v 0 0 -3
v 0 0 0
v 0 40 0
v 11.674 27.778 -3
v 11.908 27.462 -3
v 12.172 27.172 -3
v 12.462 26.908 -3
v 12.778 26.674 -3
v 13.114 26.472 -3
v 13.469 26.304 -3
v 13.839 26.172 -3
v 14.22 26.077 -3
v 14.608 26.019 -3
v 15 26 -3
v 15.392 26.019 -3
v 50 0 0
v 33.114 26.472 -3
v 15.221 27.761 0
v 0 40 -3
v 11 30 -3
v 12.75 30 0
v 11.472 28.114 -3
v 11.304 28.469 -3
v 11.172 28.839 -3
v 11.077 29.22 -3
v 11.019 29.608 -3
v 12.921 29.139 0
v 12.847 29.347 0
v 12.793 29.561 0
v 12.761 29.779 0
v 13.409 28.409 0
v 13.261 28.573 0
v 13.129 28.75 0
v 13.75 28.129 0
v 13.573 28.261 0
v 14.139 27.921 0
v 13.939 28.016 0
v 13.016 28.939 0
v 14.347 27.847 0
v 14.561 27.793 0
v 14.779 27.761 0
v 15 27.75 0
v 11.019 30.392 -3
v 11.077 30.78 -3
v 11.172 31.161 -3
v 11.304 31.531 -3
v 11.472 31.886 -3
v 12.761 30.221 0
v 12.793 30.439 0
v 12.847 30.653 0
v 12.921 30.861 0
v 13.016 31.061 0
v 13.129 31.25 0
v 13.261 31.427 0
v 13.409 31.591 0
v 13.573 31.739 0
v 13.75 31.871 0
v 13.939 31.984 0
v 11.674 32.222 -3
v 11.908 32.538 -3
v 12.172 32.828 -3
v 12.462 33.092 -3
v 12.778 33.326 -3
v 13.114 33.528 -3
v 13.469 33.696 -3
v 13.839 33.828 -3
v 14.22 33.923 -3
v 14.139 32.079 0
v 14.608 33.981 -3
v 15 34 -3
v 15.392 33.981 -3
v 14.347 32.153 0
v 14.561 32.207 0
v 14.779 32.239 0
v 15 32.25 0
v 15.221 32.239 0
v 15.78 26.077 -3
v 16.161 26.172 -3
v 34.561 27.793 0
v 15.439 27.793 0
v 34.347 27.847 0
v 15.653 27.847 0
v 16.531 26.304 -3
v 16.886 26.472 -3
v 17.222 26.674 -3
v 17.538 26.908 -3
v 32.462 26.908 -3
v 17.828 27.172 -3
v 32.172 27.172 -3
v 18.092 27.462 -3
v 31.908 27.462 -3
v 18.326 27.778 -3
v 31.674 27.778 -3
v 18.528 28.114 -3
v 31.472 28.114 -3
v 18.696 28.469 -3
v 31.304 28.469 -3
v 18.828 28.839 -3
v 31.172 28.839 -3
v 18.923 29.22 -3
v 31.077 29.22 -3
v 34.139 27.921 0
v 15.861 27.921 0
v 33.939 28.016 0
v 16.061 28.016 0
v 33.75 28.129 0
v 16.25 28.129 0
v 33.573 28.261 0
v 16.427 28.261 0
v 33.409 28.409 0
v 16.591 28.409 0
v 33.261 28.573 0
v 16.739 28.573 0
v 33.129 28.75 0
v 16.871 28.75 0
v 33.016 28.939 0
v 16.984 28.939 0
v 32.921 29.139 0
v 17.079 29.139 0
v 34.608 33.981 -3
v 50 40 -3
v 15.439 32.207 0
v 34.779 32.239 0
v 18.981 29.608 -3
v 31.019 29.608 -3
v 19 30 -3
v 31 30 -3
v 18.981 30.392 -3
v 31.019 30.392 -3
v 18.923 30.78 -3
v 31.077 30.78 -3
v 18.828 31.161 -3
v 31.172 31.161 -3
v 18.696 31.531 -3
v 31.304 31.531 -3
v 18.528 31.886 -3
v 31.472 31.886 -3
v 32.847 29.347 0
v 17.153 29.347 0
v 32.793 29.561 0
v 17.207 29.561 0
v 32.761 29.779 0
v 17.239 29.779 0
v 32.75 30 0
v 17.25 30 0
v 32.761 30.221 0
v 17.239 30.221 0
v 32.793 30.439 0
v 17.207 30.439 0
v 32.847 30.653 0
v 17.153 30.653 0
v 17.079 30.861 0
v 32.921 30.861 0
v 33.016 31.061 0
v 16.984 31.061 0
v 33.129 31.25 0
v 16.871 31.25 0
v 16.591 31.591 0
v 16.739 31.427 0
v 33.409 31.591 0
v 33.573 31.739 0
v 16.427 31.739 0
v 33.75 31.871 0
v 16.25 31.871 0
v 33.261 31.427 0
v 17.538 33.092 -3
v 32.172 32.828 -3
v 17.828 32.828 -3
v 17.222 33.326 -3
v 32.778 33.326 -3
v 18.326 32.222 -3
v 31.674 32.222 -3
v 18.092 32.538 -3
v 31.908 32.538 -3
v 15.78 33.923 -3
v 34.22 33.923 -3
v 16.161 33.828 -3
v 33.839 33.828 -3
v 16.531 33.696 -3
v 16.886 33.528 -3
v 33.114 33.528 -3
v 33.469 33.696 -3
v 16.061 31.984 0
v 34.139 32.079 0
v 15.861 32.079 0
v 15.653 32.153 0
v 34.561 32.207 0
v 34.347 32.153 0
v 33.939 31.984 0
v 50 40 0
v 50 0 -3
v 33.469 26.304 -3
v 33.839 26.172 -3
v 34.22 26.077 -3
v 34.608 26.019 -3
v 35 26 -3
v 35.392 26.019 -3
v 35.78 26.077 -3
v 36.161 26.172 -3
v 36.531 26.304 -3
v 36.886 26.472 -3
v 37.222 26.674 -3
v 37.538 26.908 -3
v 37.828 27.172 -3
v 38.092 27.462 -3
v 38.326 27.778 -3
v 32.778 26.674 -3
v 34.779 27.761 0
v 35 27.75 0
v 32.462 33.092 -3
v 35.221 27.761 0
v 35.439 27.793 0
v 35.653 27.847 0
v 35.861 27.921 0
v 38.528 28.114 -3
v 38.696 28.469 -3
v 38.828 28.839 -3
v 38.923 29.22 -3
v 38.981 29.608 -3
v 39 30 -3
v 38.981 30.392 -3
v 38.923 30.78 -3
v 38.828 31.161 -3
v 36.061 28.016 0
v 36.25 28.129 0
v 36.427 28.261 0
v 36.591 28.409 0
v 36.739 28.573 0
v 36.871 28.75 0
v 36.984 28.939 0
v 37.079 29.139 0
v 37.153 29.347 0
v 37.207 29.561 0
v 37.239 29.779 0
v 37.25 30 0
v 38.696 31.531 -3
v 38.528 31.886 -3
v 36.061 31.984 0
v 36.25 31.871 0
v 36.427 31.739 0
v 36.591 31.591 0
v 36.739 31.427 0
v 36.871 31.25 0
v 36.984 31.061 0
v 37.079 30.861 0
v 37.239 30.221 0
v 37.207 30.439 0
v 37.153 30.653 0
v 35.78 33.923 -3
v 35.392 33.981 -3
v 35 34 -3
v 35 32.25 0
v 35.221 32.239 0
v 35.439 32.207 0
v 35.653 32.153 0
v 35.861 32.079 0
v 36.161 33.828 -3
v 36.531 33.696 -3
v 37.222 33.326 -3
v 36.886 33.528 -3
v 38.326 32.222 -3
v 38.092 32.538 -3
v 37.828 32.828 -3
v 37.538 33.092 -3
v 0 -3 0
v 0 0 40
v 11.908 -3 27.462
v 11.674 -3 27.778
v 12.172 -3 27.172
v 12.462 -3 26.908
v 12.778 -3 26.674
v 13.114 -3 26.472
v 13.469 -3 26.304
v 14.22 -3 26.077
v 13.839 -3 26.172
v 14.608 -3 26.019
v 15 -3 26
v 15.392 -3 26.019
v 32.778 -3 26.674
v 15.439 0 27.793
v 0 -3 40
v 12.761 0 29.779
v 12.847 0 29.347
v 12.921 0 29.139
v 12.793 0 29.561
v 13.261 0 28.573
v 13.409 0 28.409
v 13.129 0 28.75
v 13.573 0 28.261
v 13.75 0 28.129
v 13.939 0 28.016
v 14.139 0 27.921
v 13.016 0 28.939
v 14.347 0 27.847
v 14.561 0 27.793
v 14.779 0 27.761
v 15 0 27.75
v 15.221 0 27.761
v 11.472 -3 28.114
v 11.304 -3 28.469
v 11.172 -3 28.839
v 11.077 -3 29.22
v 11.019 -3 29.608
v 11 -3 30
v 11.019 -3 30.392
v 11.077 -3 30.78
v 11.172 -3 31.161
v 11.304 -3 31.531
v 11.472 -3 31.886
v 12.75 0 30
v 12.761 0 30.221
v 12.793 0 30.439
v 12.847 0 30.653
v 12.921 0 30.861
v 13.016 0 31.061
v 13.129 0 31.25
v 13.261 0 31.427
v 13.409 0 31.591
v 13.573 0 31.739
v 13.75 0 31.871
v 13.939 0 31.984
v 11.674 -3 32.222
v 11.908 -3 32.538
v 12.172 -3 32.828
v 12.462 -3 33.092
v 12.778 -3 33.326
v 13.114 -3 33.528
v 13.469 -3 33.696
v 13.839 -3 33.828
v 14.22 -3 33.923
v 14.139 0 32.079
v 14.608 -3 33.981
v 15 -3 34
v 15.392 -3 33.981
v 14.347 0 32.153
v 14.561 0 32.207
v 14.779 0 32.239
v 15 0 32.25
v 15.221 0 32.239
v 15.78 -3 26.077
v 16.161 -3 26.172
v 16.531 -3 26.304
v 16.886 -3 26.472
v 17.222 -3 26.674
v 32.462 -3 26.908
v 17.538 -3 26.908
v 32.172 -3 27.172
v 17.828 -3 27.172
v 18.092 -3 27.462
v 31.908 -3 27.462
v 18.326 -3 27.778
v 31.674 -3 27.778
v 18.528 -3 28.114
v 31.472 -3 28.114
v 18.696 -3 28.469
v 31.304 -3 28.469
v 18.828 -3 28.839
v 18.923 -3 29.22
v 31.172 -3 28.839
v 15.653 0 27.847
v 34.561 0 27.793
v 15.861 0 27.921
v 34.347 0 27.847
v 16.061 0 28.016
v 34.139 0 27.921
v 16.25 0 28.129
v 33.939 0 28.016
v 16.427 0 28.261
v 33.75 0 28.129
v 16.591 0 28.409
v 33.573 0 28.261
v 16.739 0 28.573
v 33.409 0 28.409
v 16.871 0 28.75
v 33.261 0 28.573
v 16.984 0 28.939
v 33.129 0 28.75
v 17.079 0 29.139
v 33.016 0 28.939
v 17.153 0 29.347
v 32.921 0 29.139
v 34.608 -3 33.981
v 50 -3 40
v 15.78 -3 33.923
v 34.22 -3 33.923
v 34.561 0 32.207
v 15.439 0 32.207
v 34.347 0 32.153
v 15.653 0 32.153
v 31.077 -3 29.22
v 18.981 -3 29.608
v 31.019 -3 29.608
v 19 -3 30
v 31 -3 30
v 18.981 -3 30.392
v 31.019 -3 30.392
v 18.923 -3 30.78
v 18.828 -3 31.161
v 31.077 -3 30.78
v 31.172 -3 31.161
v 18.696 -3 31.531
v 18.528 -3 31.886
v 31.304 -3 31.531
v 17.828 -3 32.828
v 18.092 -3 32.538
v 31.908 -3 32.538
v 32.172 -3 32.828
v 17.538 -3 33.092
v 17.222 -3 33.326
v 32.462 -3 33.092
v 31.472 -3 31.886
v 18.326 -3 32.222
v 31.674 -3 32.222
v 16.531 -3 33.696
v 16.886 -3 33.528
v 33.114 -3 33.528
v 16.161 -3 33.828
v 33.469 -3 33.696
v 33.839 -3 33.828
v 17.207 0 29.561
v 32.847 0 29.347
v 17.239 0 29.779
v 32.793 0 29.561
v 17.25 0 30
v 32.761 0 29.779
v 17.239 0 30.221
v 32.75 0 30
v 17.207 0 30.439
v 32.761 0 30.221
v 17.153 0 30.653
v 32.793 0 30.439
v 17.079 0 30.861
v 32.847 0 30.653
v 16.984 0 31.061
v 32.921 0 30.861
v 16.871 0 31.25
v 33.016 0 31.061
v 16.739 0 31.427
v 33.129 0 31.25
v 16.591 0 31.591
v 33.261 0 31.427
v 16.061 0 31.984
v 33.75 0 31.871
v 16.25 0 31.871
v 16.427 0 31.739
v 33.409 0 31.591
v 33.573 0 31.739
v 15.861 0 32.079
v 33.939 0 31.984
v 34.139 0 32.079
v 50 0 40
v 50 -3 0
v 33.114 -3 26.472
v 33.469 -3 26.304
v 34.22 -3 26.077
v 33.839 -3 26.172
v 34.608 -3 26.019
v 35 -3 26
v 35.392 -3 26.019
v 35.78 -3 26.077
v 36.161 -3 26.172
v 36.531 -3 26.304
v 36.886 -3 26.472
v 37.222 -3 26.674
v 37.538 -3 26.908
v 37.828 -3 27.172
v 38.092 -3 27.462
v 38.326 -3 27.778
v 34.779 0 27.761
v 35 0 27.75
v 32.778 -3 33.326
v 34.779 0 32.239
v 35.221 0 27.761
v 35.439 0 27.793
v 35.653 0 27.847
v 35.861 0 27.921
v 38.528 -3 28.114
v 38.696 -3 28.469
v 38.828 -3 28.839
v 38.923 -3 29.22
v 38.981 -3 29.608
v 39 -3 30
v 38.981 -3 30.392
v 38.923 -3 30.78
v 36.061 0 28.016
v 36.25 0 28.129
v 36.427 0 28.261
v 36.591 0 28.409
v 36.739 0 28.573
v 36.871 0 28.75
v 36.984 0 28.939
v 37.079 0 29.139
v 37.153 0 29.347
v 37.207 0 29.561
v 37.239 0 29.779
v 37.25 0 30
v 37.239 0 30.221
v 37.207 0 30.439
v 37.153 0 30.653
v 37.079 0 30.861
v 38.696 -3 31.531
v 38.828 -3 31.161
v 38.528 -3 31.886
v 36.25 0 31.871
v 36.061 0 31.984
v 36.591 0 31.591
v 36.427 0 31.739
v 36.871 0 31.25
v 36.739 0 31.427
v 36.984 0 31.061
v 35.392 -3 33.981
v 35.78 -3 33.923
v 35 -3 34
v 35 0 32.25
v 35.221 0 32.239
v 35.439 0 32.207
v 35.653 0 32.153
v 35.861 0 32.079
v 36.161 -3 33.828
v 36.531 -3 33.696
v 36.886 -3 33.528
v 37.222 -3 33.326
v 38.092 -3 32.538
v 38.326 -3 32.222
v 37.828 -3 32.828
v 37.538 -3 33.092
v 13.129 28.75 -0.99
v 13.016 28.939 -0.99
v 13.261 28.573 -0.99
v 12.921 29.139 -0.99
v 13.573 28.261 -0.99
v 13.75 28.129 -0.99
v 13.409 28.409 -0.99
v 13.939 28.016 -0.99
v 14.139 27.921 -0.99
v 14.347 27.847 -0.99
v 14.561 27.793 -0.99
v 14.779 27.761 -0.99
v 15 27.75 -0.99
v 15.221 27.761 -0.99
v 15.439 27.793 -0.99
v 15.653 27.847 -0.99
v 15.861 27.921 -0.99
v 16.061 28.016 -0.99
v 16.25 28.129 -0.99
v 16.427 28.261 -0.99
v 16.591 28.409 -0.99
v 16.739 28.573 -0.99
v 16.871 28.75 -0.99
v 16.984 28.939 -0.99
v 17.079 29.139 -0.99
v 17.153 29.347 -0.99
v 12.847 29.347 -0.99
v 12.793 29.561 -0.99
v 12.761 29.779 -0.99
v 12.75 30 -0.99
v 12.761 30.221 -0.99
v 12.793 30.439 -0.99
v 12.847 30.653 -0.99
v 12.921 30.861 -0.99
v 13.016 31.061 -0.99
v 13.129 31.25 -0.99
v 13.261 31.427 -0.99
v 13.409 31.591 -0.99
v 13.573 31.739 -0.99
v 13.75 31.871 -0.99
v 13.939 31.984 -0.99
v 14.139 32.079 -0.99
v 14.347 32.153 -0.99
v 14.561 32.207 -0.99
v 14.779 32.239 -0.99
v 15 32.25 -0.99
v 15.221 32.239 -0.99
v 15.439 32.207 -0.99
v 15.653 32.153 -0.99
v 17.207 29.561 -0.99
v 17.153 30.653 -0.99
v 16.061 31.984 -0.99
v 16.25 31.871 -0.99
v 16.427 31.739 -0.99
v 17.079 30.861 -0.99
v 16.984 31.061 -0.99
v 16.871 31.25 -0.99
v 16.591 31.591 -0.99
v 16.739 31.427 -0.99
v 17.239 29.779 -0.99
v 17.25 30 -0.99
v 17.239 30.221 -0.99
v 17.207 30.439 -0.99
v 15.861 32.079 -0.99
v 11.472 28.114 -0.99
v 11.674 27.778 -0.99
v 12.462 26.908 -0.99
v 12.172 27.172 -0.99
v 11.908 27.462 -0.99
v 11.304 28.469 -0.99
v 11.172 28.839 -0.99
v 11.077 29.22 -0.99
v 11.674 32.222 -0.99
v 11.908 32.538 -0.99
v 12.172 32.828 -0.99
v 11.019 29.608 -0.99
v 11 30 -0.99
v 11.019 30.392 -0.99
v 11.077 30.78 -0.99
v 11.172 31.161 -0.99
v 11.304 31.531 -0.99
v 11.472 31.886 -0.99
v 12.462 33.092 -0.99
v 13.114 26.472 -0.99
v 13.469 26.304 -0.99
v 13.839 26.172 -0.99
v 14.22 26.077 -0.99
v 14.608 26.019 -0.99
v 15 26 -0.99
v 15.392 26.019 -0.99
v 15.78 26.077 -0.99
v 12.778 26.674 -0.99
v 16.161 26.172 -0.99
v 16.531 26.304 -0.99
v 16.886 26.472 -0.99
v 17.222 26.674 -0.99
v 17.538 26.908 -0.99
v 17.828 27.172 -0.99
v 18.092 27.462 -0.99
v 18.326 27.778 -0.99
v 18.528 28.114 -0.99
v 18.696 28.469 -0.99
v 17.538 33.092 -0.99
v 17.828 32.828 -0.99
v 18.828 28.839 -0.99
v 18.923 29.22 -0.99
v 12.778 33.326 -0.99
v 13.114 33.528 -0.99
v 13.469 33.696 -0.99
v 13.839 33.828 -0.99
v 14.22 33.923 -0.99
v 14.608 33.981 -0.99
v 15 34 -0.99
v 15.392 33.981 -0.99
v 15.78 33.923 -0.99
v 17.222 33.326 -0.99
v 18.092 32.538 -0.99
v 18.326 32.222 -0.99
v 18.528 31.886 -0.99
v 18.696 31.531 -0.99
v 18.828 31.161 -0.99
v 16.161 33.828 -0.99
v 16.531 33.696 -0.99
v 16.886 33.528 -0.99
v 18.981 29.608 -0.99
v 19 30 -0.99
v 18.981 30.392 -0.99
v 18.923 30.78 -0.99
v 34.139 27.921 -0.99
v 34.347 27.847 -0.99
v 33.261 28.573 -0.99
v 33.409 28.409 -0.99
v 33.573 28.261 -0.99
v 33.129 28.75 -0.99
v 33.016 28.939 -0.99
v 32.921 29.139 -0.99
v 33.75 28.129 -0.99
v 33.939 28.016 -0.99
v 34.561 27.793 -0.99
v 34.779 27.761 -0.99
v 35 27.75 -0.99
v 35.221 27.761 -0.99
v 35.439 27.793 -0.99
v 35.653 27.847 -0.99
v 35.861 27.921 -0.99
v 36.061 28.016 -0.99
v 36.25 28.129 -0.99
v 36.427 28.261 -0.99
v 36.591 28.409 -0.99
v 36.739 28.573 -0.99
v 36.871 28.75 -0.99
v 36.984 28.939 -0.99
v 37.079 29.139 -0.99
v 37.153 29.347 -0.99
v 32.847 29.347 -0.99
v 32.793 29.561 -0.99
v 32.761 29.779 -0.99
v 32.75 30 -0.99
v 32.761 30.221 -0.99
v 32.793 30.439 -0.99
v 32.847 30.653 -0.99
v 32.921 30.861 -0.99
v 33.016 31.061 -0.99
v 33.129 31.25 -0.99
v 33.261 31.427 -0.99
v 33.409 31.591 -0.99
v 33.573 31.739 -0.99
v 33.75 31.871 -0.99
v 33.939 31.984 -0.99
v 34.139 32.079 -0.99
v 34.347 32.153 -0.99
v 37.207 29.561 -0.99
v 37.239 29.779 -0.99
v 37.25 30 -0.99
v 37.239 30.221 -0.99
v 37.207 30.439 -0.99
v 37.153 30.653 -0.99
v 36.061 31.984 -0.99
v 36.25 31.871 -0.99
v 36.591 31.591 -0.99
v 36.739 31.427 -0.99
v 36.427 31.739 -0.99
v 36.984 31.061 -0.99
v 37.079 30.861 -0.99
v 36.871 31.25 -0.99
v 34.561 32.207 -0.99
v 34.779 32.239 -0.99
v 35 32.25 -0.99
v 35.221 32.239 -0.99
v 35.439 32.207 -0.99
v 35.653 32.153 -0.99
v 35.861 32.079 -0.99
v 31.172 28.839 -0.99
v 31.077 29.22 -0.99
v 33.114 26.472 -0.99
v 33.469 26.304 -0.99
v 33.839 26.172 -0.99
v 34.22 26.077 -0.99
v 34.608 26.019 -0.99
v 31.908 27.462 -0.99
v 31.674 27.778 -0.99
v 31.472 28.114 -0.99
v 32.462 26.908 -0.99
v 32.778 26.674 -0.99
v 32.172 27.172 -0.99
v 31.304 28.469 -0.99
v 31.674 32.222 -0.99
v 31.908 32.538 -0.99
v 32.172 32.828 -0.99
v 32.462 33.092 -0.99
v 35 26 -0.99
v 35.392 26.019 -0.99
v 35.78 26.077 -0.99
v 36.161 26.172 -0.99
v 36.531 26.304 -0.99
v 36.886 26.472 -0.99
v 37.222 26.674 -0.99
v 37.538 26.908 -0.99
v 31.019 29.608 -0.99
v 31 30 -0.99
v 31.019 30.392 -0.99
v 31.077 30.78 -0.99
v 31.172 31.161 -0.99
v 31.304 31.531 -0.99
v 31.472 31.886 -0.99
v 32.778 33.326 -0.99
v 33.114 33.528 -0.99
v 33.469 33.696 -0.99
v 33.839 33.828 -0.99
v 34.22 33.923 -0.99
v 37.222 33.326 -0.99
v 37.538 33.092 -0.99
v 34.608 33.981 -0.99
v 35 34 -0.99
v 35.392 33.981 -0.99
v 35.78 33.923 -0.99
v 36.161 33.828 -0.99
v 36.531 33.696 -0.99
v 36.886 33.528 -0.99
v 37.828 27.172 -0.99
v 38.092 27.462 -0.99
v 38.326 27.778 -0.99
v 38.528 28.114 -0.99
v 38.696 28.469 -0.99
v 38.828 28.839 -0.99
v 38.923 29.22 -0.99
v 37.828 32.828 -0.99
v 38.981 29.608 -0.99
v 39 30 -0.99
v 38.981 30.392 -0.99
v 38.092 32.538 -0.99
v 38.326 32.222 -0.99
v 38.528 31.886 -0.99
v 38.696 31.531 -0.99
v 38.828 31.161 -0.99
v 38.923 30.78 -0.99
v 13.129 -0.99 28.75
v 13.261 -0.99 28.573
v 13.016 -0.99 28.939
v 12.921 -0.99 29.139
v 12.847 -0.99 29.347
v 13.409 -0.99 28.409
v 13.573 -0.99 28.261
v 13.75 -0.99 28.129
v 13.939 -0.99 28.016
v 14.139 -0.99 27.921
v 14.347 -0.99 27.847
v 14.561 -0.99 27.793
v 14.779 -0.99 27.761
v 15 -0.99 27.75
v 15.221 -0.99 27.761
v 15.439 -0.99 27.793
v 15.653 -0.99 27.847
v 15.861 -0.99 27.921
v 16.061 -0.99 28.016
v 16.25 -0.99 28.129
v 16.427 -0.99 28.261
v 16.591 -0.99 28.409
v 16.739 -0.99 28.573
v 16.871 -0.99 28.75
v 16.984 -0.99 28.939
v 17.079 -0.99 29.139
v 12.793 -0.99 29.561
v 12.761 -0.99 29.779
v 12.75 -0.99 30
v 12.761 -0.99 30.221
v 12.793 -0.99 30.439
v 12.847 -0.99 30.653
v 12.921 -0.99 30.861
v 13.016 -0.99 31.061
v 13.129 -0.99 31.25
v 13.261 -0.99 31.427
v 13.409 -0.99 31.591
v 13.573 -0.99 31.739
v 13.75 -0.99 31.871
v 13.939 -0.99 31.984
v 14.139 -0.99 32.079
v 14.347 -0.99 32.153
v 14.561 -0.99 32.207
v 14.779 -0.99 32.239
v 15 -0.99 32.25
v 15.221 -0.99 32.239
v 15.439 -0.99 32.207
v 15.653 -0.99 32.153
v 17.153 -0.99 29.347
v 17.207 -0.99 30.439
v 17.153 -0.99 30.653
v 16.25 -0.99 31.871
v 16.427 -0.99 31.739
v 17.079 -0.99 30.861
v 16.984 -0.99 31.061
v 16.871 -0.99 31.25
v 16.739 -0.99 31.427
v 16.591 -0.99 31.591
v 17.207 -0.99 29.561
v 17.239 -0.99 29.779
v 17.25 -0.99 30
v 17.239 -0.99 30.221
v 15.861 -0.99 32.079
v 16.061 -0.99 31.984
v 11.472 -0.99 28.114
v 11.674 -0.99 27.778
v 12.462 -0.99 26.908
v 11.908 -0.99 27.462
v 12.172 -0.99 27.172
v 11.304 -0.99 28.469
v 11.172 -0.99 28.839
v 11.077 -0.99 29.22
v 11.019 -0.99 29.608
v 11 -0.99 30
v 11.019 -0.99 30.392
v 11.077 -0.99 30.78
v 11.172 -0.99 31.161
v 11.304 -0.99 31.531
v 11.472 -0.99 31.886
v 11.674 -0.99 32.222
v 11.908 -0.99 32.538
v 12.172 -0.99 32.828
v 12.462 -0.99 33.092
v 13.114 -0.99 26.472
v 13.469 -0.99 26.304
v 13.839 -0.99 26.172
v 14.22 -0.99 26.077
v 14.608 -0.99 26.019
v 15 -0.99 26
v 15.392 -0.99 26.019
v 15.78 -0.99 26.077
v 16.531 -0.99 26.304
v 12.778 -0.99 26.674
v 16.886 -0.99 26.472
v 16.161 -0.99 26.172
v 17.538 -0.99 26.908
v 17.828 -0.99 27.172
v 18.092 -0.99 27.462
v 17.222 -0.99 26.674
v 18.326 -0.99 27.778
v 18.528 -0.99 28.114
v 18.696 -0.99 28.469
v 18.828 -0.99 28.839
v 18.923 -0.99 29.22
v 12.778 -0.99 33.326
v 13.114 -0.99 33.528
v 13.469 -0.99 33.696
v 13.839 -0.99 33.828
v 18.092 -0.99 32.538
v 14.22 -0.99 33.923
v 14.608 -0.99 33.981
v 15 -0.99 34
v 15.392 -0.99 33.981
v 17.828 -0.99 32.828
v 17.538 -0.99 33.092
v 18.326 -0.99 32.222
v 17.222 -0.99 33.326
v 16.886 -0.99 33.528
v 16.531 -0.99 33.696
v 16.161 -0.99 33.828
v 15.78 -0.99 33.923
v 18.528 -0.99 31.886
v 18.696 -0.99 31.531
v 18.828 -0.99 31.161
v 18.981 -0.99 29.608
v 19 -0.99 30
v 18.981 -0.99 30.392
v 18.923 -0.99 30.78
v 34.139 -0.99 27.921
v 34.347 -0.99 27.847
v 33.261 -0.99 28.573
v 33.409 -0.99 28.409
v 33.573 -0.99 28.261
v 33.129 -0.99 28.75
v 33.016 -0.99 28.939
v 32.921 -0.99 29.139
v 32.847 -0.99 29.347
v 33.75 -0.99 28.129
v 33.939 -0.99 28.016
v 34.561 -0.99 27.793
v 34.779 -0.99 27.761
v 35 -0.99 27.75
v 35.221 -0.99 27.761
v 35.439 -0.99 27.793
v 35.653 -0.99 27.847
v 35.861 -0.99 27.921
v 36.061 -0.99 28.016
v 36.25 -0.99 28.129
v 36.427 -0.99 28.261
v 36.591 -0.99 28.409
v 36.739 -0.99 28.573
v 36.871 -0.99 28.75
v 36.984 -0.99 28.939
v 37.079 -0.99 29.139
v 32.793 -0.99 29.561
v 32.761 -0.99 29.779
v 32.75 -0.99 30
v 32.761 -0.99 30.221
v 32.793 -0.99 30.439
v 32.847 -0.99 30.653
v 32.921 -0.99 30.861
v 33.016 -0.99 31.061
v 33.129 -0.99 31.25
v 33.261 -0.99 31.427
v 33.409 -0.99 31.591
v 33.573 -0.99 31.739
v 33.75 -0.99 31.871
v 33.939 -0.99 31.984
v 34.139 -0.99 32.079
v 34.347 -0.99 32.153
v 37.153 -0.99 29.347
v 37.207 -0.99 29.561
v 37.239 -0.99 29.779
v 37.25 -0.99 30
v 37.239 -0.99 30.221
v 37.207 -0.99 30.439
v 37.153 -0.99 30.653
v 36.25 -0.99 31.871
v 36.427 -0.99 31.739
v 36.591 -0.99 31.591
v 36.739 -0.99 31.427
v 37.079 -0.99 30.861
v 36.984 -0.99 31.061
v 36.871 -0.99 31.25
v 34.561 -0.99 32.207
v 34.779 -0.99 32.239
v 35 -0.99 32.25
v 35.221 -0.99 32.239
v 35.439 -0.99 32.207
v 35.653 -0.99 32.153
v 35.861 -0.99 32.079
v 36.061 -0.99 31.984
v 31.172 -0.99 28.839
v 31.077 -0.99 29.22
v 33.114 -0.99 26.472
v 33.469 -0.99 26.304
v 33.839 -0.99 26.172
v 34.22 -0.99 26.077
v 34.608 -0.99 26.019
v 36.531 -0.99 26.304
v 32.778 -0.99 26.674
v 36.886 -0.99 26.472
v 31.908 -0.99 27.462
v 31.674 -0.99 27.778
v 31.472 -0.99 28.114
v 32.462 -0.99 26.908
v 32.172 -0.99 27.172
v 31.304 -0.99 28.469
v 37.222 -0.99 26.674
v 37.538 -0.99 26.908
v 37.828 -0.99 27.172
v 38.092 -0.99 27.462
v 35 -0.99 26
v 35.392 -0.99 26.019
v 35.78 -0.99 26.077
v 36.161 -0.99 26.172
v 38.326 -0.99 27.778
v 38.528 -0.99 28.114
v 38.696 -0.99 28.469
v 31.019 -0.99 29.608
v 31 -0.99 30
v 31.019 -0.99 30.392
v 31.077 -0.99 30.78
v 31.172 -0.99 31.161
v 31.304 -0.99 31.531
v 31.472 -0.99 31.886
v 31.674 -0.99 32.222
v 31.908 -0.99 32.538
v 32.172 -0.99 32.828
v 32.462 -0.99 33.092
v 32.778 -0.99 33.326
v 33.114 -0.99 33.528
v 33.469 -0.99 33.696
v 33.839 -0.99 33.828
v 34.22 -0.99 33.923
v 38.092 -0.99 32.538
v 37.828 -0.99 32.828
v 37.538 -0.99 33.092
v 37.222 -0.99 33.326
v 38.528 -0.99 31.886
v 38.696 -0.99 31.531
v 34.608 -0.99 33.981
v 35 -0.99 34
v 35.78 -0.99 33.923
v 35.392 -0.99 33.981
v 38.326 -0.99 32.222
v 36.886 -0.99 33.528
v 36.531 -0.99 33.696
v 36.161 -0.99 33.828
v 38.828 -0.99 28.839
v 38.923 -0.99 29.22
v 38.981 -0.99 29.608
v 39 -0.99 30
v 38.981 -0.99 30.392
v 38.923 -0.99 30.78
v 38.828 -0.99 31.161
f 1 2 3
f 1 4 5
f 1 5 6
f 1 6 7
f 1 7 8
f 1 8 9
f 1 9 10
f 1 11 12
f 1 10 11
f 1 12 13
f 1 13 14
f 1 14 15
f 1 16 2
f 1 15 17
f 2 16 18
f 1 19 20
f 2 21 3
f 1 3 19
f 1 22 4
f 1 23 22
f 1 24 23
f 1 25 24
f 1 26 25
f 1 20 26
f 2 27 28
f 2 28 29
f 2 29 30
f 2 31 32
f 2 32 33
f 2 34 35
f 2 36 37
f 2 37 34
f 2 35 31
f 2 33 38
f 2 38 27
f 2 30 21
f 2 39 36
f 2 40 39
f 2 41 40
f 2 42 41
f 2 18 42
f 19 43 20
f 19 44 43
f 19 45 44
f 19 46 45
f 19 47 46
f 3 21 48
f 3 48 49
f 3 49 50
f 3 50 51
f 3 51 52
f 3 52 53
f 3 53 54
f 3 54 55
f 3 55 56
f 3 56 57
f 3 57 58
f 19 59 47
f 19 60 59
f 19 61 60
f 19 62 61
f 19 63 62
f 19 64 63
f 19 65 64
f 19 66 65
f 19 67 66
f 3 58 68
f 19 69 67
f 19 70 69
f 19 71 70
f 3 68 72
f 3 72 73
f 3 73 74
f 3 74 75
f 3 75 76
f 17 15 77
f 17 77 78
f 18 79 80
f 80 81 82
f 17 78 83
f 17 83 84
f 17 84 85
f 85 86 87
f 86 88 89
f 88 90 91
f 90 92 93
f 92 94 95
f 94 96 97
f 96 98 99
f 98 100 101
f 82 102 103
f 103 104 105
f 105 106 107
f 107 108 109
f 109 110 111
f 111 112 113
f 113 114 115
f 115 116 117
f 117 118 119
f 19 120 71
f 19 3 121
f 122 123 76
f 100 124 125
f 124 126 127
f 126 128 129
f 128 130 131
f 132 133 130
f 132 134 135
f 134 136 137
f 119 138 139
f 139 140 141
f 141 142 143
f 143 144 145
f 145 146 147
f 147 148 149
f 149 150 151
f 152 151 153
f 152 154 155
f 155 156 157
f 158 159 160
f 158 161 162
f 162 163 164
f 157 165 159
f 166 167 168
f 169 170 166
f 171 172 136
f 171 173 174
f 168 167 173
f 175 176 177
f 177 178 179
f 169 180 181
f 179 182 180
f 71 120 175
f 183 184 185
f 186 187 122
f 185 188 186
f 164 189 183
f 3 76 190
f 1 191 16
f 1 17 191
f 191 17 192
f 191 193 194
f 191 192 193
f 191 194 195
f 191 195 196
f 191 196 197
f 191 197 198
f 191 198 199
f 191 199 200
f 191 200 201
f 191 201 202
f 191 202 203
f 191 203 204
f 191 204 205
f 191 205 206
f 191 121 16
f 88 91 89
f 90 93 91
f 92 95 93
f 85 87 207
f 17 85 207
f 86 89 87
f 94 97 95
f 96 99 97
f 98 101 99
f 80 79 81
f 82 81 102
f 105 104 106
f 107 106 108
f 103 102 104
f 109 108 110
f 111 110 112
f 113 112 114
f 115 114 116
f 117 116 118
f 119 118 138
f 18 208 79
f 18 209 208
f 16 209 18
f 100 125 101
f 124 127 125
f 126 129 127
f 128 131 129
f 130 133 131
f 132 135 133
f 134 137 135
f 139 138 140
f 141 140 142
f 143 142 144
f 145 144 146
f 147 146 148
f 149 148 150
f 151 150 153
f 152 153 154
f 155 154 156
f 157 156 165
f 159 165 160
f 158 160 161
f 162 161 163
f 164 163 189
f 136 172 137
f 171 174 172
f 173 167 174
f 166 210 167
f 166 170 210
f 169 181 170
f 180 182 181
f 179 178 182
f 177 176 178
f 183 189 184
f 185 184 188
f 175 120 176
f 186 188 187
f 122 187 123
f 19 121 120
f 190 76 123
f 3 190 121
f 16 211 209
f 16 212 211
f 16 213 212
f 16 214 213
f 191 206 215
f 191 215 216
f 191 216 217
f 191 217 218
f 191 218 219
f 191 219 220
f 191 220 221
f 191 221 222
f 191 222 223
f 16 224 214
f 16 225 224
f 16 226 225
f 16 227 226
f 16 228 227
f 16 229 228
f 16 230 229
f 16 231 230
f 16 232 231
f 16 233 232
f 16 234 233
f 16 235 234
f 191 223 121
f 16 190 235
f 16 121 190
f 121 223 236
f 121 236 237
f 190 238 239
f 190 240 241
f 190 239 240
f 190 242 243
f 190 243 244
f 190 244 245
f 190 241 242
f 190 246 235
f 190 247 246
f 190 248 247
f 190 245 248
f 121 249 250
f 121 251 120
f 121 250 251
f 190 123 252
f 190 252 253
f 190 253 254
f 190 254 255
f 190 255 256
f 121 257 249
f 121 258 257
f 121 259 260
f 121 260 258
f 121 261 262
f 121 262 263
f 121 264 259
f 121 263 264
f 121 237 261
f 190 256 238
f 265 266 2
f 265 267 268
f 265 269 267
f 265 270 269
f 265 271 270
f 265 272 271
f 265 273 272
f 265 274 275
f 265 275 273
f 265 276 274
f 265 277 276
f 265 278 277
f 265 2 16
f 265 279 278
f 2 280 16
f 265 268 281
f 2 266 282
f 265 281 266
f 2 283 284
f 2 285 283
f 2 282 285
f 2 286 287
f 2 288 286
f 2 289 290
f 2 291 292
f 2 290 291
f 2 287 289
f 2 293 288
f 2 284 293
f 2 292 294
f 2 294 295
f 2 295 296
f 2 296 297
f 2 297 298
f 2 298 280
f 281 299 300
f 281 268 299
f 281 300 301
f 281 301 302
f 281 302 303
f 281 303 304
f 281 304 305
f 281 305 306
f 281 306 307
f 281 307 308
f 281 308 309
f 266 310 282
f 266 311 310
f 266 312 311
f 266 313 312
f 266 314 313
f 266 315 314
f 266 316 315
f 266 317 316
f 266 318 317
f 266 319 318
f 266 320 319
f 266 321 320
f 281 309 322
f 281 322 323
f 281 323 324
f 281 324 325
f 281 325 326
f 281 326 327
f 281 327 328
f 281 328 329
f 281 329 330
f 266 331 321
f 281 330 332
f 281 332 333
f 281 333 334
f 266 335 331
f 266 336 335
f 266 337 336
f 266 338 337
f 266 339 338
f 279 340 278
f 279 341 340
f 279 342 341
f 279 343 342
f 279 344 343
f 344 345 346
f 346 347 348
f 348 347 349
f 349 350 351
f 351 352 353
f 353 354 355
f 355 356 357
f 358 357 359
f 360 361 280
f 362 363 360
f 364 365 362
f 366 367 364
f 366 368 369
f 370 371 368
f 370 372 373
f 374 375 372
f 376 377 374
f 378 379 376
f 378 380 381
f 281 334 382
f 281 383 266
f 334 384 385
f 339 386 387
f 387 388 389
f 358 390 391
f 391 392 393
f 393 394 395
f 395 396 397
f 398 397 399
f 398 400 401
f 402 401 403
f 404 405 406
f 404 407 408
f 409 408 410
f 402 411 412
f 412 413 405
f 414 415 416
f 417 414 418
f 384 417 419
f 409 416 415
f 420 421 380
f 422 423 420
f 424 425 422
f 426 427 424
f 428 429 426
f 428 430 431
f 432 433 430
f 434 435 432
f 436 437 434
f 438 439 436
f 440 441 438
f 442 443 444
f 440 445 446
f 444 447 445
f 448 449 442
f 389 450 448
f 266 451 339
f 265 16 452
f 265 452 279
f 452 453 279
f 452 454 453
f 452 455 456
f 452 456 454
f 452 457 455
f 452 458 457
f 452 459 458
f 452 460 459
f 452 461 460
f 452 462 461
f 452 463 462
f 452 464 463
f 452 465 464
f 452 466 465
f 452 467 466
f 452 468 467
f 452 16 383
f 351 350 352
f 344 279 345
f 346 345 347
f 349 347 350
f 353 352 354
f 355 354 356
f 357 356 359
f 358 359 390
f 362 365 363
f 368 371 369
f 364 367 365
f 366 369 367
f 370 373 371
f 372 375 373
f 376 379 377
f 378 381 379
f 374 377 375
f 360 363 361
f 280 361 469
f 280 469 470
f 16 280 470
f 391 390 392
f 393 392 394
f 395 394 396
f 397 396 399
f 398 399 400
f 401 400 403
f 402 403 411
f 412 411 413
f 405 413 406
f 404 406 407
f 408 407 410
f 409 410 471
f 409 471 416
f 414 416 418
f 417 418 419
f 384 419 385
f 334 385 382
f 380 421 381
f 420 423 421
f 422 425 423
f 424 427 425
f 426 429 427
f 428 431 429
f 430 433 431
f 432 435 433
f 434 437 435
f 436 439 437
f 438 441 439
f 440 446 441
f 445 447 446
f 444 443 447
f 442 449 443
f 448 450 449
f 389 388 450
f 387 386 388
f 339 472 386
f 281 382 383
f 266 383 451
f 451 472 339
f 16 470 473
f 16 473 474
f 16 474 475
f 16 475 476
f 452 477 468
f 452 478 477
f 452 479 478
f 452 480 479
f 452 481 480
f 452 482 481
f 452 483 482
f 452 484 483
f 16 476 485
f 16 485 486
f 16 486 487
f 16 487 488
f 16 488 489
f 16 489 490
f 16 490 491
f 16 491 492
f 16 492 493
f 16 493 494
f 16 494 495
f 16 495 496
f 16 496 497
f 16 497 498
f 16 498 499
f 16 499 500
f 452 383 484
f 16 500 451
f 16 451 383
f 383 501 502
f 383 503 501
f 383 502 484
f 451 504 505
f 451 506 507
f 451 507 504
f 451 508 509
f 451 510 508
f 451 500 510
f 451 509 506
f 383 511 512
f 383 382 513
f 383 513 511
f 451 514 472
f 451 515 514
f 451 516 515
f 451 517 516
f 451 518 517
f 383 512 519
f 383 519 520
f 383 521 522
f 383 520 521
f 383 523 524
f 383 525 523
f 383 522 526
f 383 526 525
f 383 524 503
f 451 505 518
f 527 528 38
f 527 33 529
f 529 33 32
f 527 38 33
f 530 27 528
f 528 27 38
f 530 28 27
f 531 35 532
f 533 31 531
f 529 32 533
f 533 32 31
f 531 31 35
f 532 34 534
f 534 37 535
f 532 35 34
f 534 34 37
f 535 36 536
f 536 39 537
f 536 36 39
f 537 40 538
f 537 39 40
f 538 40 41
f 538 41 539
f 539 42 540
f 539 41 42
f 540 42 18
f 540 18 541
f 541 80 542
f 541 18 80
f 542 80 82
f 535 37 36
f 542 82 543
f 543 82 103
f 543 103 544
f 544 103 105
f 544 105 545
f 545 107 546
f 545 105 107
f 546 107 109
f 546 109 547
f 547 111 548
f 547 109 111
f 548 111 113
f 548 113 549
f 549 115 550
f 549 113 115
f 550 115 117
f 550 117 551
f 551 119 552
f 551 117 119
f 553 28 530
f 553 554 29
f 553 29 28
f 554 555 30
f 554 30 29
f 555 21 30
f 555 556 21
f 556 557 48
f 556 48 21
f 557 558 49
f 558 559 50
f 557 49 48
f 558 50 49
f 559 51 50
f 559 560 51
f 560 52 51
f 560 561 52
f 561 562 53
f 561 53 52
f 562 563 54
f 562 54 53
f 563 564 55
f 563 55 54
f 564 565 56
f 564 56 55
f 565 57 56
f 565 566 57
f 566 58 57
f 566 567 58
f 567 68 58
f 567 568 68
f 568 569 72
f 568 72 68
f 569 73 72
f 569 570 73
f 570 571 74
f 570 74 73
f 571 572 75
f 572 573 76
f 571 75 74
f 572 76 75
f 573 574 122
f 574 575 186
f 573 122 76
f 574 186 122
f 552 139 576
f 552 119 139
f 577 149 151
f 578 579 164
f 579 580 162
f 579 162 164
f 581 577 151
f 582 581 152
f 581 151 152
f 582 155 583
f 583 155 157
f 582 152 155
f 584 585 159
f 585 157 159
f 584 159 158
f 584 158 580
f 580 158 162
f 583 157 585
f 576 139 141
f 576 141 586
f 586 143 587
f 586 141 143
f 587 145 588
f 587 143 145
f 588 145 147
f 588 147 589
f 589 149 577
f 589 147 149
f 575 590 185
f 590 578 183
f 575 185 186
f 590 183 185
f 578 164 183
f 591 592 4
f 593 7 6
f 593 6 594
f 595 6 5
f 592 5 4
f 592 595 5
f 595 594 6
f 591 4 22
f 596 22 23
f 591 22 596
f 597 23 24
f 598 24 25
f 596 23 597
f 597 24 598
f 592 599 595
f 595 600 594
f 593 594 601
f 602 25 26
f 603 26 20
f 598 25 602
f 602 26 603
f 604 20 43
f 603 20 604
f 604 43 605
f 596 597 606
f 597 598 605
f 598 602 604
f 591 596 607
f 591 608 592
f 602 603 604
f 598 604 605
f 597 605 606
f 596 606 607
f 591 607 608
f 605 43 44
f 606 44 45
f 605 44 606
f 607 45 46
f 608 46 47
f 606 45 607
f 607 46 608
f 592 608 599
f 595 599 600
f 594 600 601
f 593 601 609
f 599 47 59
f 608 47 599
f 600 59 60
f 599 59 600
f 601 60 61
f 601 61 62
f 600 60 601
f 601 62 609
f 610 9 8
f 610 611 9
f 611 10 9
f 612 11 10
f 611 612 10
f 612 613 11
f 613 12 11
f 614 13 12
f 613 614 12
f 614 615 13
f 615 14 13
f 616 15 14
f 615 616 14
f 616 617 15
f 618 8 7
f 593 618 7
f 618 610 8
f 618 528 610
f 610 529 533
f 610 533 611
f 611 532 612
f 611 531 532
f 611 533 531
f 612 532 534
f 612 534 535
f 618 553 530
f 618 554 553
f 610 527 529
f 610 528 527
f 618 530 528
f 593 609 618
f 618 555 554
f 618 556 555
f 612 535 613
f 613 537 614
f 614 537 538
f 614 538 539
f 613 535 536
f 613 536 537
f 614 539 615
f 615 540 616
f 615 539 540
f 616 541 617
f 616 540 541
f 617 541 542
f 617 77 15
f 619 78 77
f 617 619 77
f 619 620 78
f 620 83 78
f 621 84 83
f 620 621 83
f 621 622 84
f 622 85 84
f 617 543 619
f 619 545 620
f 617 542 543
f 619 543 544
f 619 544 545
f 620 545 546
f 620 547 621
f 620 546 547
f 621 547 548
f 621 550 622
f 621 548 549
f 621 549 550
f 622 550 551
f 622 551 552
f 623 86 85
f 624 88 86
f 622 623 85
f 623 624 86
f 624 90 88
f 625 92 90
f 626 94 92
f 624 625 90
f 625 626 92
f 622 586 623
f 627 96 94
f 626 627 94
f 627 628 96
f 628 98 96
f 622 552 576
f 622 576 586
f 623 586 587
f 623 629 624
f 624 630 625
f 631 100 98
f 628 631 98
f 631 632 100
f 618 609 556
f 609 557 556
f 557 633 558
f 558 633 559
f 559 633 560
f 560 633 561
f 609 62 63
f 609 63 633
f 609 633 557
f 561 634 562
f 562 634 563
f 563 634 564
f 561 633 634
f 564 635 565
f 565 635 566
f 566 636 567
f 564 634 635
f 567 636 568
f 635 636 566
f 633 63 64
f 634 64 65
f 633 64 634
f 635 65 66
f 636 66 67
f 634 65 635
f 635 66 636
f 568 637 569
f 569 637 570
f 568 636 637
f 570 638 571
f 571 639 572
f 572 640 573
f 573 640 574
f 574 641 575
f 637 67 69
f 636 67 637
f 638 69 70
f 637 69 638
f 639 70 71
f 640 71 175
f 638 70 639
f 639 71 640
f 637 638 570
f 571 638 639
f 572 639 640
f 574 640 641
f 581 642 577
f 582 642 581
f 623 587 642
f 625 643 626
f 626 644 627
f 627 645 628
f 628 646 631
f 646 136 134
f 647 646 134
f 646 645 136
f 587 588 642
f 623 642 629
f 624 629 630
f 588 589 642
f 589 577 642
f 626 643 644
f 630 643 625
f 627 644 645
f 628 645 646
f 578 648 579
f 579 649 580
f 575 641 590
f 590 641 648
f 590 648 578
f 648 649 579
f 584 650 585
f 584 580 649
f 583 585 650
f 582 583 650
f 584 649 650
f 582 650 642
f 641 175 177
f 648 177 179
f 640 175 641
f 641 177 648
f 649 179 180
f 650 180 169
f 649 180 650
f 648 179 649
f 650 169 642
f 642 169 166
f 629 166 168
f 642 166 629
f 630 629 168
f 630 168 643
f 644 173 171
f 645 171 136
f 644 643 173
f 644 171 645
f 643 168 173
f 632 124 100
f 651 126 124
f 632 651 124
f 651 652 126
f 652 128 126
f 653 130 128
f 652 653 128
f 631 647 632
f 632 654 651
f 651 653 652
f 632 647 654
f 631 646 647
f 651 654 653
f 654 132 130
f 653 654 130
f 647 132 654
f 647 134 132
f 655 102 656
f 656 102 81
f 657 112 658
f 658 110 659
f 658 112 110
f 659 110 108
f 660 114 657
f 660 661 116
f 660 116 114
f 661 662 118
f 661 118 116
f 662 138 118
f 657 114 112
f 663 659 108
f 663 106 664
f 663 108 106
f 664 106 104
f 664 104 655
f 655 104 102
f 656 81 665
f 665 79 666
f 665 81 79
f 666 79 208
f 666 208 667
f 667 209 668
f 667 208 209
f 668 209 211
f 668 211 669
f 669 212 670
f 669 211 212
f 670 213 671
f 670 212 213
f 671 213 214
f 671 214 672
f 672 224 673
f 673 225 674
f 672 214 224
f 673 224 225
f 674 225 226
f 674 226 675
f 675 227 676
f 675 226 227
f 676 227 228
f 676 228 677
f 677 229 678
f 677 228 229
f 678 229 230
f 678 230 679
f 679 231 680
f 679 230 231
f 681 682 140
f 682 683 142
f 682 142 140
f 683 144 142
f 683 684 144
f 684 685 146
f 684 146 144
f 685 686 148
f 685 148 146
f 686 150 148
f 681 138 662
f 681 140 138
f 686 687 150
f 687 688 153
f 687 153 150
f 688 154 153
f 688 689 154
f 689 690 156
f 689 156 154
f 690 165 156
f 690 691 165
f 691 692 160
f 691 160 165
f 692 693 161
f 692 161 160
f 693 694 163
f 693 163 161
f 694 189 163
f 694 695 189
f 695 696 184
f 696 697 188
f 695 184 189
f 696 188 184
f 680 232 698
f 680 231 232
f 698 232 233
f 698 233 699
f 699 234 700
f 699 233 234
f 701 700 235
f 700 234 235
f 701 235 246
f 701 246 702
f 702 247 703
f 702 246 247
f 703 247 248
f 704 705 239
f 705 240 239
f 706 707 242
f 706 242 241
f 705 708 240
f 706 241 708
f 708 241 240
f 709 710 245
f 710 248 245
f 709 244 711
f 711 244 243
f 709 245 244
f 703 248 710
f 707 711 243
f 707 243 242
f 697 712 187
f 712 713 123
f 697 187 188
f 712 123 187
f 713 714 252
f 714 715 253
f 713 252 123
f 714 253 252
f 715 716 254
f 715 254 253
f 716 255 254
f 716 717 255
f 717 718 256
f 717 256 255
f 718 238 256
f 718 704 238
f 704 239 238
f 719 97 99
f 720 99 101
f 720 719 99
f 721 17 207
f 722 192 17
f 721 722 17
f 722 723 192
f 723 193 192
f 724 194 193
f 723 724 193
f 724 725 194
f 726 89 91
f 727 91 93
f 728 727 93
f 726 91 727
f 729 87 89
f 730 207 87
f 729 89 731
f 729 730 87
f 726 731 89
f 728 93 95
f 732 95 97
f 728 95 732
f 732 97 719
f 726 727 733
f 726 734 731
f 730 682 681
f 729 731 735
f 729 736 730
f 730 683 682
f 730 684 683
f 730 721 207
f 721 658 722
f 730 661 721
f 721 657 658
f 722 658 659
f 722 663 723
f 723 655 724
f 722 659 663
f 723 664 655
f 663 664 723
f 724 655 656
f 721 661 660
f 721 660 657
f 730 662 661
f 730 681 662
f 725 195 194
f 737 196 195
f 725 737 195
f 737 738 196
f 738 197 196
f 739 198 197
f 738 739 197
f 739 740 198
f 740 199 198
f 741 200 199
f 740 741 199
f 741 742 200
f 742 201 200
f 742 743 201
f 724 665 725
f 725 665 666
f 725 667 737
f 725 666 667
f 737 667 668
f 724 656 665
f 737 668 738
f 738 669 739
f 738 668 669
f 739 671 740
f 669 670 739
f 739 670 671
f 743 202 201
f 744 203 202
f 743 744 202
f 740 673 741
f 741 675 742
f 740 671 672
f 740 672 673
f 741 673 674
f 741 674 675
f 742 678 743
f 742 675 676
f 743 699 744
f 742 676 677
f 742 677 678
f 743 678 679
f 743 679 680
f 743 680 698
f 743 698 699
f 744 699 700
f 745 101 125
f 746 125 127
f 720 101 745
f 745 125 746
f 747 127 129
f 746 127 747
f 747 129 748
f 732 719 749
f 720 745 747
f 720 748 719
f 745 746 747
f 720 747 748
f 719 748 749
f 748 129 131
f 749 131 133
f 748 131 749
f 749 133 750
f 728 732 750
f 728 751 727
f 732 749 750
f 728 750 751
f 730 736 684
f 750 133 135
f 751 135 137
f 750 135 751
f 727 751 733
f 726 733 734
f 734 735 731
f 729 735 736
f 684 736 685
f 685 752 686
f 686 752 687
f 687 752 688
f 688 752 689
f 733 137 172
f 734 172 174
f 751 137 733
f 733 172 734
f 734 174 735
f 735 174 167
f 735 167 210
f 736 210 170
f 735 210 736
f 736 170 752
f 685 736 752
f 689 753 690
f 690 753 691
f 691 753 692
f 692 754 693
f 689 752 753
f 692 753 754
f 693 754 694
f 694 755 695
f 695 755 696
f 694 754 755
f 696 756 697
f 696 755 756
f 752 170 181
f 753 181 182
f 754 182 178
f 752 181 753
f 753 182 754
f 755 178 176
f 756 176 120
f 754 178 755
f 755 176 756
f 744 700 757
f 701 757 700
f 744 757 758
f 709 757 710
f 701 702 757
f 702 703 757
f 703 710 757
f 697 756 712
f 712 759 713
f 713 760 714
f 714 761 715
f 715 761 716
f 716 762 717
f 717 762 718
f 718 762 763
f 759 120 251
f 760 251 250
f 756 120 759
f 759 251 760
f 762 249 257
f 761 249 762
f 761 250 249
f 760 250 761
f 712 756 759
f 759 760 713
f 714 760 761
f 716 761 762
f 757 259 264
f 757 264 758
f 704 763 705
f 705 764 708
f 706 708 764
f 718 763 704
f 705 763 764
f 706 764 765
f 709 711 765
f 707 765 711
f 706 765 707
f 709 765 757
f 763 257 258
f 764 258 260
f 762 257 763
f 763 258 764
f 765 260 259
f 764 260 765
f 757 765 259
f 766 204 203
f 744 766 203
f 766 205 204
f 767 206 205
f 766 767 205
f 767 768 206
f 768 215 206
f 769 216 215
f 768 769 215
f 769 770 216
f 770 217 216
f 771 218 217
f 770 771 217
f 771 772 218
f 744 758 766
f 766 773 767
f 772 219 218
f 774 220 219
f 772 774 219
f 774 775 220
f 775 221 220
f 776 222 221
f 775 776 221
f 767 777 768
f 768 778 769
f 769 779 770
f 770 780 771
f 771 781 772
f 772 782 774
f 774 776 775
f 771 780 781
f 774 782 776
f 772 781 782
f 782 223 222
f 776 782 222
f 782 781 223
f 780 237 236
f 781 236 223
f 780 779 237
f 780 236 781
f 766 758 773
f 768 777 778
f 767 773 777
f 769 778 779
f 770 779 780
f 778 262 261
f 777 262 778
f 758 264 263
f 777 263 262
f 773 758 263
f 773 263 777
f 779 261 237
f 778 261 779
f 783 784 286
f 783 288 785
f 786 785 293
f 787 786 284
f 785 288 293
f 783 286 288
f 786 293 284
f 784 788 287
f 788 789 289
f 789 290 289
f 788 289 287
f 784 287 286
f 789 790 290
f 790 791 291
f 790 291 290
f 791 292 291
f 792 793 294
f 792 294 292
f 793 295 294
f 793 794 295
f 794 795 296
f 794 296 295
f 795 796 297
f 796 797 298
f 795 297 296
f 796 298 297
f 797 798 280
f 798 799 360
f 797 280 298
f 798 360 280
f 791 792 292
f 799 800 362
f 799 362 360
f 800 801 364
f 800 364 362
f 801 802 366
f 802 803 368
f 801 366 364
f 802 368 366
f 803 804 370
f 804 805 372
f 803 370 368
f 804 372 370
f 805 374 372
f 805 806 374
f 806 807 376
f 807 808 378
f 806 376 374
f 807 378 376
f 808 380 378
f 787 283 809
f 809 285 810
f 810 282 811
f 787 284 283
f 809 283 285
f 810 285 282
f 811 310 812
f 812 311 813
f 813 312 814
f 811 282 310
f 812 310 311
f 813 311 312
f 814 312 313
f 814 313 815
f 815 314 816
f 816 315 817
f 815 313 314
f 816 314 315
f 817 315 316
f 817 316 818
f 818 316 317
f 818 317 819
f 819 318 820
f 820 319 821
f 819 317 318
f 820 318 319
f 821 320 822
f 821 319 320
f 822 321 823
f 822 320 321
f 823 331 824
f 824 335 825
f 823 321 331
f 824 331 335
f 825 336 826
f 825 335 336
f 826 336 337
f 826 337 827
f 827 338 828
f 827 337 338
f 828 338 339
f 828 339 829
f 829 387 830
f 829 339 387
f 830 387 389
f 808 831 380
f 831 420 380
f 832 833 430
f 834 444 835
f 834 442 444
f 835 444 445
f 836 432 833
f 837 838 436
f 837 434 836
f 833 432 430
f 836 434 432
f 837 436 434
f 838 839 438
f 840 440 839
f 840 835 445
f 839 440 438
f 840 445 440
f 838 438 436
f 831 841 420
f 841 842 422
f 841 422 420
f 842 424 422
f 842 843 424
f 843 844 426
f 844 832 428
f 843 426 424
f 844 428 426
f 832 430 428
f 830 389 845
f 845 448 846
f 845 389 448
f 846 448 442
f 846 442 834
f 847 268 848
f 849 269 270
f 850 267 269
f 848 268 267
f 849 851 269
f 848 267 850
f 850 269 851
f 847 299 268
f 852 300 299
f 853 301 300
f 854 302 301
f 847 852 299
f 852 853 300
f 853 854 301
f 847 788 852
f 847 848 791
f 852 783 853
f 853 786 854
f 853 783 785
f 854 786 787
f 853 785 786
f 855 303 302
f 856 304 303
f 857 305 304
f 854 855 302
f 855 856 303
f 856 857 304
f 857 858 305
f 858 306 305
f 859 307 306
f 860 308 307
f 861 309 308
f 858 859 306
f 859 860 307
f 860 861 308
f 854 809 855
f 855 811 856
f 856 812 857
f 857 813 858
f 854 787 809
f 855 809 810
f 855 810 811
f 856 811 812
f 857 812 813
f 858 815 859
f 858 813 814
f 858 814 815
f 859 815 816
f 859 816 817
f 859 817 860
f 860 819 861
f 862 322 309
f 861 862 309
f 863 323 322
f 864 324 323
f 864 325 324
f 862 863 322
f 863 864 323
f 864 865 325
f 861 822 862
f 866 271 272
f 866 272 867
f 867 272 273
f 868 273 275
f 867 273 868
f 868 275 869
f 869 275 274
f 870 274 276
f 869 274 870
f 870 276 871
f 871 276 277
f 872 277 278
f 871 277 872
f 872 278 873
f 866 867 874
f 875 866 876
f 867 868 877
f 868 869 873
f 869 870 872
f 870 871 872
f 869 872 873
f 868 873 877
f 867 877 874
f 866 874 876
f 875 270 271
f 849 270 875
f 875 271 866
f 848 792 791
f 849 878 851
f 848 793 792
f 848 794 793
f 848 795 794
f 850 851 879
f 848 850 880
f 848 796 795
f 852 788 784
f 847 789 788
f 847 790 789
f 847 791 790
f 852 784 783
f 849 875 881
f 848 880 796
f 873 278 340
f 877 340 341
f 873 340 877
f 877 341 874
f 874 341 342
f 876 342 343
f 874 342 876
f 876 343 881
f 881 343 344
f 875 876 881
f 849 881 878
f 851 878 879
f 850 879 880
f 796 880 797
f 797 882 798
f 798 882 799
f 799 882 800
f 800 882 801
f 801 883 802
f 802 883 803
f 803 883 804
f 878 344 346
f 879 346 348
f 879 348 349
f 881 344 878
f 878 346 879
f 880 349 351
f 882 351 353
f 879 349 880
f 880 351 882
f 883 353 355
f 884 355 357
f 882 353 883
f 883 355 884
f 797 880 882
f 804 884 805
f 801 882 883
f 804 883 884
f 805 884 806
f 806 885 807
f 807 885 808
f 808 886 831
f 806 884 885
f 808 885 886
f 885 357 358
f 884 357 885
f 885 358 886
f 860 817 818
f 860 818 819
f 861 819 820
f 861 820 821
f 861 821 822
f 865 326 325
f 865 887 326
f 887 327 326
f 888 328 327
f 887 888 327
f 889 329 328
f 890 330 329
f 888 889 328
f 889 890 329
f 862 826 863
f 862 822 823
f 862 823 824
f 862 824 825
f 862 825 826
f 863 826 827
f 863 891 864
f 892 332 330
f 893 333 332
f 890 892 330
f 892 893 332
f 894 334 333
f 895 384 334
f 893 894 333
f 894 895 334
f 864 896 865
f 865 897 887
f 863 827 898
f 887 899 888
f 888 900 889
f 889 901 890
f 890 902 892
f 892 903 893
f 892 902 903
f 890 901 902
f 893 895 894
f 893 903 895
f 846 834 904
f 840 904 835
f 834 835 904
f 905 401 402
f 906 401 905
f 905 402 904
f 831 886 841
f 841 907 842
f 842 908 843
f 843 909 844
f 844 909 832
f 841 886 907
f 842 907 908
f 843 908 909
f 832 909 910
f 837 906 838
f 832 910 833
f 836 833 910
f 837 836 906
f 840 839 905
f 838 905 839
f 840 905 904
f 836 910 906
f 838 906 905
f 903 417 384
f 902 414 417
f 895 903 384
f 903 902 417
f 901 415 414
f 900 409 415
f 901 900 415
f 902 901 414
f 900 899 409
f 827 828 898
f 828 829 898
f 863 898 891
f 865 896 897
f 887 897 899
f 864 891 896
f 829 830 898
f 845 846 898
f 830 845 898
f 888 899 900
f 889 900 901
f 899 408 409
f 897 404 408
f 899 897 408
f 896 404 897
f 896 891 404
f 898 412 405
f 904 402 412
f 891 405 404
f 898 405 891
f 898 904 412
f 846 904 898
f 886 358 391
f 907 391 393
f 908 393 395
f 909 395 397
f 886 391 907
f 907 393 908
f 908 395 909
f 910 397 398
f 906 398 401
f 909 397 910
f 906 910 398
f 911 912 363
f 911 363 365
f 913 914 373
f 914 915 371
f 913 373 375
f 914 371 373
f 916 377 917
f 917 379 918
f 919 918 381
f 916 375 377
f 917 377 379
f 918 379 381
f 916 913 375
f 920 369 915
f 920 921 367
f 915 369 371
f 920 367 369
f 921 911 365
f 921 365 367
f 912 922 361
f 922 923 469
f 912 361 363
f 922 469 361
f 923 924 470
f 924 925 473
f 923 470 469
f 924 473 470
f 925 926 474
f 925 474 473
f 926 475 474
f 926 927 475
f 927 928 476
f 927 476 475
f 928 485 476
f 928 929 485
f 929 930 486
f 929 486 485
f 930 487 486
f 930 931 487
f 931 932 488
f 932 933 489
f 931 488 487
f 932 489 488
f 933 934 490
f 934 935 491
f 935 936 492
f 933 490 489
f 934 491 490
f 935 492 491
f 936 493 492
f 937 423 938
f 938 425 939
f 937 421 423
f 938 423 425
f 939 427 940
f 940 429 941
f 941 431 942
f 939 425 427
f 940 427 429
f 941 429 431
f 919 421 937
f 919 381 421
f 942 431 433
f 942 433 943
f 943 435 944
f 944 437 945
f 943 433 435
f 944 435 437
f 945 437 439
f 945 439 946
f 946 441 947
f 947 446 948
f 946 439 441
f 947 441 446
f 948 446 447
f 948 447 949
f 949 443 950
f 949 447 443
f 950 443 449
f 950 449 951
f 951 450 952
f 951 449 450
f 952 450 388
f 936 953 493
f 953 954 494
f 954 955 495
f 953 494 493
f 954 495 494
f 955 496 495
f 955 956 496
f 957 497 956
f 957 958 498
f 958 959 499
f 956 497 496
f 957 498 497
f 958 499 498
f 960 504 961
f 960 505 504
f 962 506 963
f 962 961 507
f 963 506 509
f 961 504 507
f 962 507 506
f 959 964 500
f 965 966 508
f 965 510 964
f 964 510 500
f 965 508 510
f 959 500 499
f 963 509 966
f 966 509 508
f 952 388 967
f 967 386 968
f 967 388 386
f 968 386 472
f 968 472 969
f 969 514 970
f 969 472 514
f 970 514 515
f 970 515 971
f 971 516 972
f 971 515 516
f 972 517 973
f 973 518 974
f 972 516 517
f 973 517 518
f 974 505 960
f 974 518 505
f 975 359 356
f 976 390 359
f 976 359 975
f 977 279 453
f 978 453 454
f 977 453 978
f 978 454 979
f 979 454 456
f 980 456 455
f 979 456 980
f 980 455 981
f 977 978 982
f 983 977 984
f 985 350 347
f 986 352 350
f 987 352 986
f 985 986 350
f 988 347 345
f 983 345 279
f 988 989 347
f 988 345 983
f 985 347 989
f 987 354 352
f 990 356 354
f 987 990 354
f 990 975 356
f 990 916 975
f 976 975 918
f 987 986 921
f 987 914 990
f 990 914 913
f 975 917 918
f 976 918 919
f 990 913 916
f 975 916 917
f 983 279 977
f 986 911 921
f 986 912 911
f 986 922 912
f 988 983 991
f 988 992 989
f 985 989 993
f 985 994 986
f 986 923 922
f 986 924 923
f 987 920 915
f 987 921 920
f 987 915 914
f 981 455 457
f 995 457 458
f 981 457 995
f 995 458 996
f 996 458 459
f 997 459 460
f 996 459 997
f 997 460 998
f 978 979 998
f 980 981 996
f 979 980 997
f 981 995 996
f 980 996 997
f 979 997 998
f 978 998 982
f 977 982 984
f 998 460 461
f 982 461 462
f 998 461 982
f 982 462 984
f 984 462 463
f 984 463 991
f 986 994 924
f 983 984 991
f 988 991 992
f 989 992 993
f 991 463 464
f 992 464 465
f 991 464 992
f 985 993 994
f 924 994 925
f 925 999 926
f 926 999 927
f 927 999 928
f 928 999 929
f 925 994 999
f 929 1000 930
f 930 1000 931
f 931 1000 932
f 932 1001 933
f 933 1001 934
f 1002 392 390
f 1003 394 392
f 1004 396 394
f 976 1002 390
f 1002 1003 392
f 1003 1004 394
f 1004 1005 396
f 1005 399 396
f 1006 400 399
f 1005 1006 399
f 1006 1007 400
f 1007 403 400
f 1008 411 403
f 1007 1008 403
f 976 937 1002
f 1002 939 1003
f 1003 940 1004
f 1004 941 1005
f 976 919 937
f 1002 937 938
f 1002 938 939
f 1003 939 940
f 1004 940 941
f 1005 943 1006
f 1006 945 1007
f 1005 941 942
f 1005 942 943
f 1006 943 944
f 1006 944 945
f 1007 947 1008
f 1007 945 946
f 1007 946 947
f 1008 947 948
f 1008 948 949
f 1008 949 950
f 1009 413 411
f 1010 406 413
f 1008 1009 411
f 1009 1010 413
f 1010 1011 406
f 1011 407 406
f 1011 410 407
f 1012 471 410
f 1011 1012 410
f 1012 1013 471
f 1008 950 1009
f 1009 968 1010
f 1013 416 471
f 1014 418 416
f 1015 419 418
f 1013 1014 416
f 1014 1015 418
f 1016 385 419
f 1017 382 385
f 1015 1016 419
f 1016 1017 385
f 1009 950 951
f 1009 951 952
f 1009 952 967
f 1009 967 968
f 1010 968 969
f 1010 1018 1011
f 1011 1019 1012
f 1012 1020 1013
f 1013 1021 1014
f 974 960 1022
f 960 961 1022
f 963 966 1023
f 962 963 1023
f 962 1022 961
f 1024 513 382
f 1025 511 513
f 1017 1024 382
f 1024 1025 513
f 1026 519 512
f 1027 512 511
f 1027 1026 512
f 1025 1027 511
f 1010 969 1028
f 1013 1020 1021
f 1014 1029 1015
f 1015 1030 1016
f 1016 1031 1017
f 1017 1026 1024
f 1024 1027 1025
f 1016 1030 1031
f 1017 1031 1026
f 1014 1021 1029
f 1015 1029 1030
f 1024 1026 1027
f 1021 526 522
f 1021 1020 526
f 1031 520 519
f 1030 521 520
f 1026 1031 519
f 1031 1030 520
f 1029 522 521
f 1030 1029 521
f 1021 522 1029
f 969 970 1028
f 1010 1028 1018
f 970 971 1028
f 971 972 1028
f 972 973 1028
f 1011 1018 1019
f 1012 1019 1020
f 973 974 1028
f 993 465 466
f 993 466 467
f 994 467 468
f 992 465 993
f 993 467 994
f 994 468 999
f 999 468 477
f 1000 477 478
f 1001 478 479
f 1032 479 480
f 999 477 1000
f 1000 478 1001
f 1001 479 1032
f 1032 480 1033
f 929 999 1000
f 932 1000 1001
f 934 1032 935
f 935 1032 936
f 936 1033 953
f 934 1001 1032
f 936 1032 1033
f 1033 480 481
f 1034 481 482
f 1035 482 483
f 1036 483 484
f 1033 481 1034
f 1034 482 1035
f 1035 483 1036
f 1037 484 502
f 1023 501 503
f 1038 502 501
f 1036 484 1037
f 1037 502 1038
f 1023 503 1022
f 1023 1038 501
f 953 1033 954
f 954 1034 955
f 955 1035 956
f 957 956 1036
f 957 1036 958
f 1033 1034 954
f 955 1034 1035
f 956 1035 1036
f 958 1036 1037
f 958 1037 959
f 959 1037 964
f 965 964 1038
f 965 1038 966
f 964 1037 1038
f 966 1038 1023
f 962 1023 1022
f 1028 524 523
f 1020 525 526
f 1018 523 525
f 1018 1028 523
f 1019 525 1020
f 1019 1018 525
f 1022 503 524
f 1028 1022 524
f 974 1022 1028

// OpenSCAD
// L-bracket with countersunk holes

$fn = 64;

width    = 50;   // X
depth    = 40;   // Y (horizontal flange)
height   = 40;   // Z (vertical flange)
thk      = 3;    // plate thickness

hole_d   = 4.5;  // through hole
csk_d    = 8;    // countersink diameter
csk_h    = 2;    // countersink depth
edge_off = 10;   // distance from edge

// Hole X positions (symmetric on center line)
hx1 = width/2 - 10;
hx2 = width/2 + 10;

module countersunk_hole_z(z_outer_top) {
    // Hole drilled along Z axis. z_outer_top = top surface Z (outer face).
    // Through hole
    translate([0, 0, z_outer_top - thk - 0.1])
        cylinder(d = hole_d, h = thk + 0.2);
    // Countersink from outer (top) face going down
    translate([0, 0, z_outer_top - csk_h])
        cylinder(d = csk_d, h = csk_h + 0.01);
}

module countersunk_hole_y(y_outer_front) {
    // Hole drilled along Y axis. y_outer_front = outer face Y.
    translate([0, y_outer_front - thk - 0.1, 0])
        rotate([-90, 0, 0])
            cylinder(d = hole_d, h = thk + 0.2);
    translate([0, y_outer_front - csk_h, 0])
        rotate([-90, 0, 0])
            cylinder(d = csk_d, h = csk_h + 0.01);
}

difference() {
    union() {
        // Horizontal flange: top surface at Z=0, extends in +Y
        translate([0, 0, -thk])
            cube([width, depth, thk]);
        // Vertical flange: front surface at Y=0, extends in +Z
        translate([0, -thk, 0])
            cube([width, thk, height]);
    }

    // Horizontal flange holes (countersink on bottom = outer face)
    // Outer face is at Z = -thk; bolt head from below.
    // Use countersunk_hole_z with mirrored orientation: drill from bottom.
    for (x = [hx1, hx2]) {
        translate([x, depth - edge_off, 0]) {
            // Through hole
            translate([0, 0, -thk - 0.1])
                cylinder(d = hole_d, h = thk + 0.2);
            // Countersink on bottom (outer) face, opening downward
            translate([0, 0, -thk])
                cylinder(d1 = csk_d, d2 = csk_d, h = csk_h + 0.01);
        }
    }

    // Vertical flange holes (countersink on front = outer face at Y = -thk)
    for (x = [hx1, hx2]) {
        translate([x, 0, height - edge_off]) {
            // Through hole along Y
            translate([0, -thk - 0.1, 0])
                rotate([-90, 0, 0])
                    cylinder(d = hole_d, h = thk + 0.2);
            // Countersink on front face
            translate([0, -thk, 0])
                rotate([-90, 0, 0])
                    cylinder(d = csk_d, h = csk_h + 0.01);
        }
    }
}
